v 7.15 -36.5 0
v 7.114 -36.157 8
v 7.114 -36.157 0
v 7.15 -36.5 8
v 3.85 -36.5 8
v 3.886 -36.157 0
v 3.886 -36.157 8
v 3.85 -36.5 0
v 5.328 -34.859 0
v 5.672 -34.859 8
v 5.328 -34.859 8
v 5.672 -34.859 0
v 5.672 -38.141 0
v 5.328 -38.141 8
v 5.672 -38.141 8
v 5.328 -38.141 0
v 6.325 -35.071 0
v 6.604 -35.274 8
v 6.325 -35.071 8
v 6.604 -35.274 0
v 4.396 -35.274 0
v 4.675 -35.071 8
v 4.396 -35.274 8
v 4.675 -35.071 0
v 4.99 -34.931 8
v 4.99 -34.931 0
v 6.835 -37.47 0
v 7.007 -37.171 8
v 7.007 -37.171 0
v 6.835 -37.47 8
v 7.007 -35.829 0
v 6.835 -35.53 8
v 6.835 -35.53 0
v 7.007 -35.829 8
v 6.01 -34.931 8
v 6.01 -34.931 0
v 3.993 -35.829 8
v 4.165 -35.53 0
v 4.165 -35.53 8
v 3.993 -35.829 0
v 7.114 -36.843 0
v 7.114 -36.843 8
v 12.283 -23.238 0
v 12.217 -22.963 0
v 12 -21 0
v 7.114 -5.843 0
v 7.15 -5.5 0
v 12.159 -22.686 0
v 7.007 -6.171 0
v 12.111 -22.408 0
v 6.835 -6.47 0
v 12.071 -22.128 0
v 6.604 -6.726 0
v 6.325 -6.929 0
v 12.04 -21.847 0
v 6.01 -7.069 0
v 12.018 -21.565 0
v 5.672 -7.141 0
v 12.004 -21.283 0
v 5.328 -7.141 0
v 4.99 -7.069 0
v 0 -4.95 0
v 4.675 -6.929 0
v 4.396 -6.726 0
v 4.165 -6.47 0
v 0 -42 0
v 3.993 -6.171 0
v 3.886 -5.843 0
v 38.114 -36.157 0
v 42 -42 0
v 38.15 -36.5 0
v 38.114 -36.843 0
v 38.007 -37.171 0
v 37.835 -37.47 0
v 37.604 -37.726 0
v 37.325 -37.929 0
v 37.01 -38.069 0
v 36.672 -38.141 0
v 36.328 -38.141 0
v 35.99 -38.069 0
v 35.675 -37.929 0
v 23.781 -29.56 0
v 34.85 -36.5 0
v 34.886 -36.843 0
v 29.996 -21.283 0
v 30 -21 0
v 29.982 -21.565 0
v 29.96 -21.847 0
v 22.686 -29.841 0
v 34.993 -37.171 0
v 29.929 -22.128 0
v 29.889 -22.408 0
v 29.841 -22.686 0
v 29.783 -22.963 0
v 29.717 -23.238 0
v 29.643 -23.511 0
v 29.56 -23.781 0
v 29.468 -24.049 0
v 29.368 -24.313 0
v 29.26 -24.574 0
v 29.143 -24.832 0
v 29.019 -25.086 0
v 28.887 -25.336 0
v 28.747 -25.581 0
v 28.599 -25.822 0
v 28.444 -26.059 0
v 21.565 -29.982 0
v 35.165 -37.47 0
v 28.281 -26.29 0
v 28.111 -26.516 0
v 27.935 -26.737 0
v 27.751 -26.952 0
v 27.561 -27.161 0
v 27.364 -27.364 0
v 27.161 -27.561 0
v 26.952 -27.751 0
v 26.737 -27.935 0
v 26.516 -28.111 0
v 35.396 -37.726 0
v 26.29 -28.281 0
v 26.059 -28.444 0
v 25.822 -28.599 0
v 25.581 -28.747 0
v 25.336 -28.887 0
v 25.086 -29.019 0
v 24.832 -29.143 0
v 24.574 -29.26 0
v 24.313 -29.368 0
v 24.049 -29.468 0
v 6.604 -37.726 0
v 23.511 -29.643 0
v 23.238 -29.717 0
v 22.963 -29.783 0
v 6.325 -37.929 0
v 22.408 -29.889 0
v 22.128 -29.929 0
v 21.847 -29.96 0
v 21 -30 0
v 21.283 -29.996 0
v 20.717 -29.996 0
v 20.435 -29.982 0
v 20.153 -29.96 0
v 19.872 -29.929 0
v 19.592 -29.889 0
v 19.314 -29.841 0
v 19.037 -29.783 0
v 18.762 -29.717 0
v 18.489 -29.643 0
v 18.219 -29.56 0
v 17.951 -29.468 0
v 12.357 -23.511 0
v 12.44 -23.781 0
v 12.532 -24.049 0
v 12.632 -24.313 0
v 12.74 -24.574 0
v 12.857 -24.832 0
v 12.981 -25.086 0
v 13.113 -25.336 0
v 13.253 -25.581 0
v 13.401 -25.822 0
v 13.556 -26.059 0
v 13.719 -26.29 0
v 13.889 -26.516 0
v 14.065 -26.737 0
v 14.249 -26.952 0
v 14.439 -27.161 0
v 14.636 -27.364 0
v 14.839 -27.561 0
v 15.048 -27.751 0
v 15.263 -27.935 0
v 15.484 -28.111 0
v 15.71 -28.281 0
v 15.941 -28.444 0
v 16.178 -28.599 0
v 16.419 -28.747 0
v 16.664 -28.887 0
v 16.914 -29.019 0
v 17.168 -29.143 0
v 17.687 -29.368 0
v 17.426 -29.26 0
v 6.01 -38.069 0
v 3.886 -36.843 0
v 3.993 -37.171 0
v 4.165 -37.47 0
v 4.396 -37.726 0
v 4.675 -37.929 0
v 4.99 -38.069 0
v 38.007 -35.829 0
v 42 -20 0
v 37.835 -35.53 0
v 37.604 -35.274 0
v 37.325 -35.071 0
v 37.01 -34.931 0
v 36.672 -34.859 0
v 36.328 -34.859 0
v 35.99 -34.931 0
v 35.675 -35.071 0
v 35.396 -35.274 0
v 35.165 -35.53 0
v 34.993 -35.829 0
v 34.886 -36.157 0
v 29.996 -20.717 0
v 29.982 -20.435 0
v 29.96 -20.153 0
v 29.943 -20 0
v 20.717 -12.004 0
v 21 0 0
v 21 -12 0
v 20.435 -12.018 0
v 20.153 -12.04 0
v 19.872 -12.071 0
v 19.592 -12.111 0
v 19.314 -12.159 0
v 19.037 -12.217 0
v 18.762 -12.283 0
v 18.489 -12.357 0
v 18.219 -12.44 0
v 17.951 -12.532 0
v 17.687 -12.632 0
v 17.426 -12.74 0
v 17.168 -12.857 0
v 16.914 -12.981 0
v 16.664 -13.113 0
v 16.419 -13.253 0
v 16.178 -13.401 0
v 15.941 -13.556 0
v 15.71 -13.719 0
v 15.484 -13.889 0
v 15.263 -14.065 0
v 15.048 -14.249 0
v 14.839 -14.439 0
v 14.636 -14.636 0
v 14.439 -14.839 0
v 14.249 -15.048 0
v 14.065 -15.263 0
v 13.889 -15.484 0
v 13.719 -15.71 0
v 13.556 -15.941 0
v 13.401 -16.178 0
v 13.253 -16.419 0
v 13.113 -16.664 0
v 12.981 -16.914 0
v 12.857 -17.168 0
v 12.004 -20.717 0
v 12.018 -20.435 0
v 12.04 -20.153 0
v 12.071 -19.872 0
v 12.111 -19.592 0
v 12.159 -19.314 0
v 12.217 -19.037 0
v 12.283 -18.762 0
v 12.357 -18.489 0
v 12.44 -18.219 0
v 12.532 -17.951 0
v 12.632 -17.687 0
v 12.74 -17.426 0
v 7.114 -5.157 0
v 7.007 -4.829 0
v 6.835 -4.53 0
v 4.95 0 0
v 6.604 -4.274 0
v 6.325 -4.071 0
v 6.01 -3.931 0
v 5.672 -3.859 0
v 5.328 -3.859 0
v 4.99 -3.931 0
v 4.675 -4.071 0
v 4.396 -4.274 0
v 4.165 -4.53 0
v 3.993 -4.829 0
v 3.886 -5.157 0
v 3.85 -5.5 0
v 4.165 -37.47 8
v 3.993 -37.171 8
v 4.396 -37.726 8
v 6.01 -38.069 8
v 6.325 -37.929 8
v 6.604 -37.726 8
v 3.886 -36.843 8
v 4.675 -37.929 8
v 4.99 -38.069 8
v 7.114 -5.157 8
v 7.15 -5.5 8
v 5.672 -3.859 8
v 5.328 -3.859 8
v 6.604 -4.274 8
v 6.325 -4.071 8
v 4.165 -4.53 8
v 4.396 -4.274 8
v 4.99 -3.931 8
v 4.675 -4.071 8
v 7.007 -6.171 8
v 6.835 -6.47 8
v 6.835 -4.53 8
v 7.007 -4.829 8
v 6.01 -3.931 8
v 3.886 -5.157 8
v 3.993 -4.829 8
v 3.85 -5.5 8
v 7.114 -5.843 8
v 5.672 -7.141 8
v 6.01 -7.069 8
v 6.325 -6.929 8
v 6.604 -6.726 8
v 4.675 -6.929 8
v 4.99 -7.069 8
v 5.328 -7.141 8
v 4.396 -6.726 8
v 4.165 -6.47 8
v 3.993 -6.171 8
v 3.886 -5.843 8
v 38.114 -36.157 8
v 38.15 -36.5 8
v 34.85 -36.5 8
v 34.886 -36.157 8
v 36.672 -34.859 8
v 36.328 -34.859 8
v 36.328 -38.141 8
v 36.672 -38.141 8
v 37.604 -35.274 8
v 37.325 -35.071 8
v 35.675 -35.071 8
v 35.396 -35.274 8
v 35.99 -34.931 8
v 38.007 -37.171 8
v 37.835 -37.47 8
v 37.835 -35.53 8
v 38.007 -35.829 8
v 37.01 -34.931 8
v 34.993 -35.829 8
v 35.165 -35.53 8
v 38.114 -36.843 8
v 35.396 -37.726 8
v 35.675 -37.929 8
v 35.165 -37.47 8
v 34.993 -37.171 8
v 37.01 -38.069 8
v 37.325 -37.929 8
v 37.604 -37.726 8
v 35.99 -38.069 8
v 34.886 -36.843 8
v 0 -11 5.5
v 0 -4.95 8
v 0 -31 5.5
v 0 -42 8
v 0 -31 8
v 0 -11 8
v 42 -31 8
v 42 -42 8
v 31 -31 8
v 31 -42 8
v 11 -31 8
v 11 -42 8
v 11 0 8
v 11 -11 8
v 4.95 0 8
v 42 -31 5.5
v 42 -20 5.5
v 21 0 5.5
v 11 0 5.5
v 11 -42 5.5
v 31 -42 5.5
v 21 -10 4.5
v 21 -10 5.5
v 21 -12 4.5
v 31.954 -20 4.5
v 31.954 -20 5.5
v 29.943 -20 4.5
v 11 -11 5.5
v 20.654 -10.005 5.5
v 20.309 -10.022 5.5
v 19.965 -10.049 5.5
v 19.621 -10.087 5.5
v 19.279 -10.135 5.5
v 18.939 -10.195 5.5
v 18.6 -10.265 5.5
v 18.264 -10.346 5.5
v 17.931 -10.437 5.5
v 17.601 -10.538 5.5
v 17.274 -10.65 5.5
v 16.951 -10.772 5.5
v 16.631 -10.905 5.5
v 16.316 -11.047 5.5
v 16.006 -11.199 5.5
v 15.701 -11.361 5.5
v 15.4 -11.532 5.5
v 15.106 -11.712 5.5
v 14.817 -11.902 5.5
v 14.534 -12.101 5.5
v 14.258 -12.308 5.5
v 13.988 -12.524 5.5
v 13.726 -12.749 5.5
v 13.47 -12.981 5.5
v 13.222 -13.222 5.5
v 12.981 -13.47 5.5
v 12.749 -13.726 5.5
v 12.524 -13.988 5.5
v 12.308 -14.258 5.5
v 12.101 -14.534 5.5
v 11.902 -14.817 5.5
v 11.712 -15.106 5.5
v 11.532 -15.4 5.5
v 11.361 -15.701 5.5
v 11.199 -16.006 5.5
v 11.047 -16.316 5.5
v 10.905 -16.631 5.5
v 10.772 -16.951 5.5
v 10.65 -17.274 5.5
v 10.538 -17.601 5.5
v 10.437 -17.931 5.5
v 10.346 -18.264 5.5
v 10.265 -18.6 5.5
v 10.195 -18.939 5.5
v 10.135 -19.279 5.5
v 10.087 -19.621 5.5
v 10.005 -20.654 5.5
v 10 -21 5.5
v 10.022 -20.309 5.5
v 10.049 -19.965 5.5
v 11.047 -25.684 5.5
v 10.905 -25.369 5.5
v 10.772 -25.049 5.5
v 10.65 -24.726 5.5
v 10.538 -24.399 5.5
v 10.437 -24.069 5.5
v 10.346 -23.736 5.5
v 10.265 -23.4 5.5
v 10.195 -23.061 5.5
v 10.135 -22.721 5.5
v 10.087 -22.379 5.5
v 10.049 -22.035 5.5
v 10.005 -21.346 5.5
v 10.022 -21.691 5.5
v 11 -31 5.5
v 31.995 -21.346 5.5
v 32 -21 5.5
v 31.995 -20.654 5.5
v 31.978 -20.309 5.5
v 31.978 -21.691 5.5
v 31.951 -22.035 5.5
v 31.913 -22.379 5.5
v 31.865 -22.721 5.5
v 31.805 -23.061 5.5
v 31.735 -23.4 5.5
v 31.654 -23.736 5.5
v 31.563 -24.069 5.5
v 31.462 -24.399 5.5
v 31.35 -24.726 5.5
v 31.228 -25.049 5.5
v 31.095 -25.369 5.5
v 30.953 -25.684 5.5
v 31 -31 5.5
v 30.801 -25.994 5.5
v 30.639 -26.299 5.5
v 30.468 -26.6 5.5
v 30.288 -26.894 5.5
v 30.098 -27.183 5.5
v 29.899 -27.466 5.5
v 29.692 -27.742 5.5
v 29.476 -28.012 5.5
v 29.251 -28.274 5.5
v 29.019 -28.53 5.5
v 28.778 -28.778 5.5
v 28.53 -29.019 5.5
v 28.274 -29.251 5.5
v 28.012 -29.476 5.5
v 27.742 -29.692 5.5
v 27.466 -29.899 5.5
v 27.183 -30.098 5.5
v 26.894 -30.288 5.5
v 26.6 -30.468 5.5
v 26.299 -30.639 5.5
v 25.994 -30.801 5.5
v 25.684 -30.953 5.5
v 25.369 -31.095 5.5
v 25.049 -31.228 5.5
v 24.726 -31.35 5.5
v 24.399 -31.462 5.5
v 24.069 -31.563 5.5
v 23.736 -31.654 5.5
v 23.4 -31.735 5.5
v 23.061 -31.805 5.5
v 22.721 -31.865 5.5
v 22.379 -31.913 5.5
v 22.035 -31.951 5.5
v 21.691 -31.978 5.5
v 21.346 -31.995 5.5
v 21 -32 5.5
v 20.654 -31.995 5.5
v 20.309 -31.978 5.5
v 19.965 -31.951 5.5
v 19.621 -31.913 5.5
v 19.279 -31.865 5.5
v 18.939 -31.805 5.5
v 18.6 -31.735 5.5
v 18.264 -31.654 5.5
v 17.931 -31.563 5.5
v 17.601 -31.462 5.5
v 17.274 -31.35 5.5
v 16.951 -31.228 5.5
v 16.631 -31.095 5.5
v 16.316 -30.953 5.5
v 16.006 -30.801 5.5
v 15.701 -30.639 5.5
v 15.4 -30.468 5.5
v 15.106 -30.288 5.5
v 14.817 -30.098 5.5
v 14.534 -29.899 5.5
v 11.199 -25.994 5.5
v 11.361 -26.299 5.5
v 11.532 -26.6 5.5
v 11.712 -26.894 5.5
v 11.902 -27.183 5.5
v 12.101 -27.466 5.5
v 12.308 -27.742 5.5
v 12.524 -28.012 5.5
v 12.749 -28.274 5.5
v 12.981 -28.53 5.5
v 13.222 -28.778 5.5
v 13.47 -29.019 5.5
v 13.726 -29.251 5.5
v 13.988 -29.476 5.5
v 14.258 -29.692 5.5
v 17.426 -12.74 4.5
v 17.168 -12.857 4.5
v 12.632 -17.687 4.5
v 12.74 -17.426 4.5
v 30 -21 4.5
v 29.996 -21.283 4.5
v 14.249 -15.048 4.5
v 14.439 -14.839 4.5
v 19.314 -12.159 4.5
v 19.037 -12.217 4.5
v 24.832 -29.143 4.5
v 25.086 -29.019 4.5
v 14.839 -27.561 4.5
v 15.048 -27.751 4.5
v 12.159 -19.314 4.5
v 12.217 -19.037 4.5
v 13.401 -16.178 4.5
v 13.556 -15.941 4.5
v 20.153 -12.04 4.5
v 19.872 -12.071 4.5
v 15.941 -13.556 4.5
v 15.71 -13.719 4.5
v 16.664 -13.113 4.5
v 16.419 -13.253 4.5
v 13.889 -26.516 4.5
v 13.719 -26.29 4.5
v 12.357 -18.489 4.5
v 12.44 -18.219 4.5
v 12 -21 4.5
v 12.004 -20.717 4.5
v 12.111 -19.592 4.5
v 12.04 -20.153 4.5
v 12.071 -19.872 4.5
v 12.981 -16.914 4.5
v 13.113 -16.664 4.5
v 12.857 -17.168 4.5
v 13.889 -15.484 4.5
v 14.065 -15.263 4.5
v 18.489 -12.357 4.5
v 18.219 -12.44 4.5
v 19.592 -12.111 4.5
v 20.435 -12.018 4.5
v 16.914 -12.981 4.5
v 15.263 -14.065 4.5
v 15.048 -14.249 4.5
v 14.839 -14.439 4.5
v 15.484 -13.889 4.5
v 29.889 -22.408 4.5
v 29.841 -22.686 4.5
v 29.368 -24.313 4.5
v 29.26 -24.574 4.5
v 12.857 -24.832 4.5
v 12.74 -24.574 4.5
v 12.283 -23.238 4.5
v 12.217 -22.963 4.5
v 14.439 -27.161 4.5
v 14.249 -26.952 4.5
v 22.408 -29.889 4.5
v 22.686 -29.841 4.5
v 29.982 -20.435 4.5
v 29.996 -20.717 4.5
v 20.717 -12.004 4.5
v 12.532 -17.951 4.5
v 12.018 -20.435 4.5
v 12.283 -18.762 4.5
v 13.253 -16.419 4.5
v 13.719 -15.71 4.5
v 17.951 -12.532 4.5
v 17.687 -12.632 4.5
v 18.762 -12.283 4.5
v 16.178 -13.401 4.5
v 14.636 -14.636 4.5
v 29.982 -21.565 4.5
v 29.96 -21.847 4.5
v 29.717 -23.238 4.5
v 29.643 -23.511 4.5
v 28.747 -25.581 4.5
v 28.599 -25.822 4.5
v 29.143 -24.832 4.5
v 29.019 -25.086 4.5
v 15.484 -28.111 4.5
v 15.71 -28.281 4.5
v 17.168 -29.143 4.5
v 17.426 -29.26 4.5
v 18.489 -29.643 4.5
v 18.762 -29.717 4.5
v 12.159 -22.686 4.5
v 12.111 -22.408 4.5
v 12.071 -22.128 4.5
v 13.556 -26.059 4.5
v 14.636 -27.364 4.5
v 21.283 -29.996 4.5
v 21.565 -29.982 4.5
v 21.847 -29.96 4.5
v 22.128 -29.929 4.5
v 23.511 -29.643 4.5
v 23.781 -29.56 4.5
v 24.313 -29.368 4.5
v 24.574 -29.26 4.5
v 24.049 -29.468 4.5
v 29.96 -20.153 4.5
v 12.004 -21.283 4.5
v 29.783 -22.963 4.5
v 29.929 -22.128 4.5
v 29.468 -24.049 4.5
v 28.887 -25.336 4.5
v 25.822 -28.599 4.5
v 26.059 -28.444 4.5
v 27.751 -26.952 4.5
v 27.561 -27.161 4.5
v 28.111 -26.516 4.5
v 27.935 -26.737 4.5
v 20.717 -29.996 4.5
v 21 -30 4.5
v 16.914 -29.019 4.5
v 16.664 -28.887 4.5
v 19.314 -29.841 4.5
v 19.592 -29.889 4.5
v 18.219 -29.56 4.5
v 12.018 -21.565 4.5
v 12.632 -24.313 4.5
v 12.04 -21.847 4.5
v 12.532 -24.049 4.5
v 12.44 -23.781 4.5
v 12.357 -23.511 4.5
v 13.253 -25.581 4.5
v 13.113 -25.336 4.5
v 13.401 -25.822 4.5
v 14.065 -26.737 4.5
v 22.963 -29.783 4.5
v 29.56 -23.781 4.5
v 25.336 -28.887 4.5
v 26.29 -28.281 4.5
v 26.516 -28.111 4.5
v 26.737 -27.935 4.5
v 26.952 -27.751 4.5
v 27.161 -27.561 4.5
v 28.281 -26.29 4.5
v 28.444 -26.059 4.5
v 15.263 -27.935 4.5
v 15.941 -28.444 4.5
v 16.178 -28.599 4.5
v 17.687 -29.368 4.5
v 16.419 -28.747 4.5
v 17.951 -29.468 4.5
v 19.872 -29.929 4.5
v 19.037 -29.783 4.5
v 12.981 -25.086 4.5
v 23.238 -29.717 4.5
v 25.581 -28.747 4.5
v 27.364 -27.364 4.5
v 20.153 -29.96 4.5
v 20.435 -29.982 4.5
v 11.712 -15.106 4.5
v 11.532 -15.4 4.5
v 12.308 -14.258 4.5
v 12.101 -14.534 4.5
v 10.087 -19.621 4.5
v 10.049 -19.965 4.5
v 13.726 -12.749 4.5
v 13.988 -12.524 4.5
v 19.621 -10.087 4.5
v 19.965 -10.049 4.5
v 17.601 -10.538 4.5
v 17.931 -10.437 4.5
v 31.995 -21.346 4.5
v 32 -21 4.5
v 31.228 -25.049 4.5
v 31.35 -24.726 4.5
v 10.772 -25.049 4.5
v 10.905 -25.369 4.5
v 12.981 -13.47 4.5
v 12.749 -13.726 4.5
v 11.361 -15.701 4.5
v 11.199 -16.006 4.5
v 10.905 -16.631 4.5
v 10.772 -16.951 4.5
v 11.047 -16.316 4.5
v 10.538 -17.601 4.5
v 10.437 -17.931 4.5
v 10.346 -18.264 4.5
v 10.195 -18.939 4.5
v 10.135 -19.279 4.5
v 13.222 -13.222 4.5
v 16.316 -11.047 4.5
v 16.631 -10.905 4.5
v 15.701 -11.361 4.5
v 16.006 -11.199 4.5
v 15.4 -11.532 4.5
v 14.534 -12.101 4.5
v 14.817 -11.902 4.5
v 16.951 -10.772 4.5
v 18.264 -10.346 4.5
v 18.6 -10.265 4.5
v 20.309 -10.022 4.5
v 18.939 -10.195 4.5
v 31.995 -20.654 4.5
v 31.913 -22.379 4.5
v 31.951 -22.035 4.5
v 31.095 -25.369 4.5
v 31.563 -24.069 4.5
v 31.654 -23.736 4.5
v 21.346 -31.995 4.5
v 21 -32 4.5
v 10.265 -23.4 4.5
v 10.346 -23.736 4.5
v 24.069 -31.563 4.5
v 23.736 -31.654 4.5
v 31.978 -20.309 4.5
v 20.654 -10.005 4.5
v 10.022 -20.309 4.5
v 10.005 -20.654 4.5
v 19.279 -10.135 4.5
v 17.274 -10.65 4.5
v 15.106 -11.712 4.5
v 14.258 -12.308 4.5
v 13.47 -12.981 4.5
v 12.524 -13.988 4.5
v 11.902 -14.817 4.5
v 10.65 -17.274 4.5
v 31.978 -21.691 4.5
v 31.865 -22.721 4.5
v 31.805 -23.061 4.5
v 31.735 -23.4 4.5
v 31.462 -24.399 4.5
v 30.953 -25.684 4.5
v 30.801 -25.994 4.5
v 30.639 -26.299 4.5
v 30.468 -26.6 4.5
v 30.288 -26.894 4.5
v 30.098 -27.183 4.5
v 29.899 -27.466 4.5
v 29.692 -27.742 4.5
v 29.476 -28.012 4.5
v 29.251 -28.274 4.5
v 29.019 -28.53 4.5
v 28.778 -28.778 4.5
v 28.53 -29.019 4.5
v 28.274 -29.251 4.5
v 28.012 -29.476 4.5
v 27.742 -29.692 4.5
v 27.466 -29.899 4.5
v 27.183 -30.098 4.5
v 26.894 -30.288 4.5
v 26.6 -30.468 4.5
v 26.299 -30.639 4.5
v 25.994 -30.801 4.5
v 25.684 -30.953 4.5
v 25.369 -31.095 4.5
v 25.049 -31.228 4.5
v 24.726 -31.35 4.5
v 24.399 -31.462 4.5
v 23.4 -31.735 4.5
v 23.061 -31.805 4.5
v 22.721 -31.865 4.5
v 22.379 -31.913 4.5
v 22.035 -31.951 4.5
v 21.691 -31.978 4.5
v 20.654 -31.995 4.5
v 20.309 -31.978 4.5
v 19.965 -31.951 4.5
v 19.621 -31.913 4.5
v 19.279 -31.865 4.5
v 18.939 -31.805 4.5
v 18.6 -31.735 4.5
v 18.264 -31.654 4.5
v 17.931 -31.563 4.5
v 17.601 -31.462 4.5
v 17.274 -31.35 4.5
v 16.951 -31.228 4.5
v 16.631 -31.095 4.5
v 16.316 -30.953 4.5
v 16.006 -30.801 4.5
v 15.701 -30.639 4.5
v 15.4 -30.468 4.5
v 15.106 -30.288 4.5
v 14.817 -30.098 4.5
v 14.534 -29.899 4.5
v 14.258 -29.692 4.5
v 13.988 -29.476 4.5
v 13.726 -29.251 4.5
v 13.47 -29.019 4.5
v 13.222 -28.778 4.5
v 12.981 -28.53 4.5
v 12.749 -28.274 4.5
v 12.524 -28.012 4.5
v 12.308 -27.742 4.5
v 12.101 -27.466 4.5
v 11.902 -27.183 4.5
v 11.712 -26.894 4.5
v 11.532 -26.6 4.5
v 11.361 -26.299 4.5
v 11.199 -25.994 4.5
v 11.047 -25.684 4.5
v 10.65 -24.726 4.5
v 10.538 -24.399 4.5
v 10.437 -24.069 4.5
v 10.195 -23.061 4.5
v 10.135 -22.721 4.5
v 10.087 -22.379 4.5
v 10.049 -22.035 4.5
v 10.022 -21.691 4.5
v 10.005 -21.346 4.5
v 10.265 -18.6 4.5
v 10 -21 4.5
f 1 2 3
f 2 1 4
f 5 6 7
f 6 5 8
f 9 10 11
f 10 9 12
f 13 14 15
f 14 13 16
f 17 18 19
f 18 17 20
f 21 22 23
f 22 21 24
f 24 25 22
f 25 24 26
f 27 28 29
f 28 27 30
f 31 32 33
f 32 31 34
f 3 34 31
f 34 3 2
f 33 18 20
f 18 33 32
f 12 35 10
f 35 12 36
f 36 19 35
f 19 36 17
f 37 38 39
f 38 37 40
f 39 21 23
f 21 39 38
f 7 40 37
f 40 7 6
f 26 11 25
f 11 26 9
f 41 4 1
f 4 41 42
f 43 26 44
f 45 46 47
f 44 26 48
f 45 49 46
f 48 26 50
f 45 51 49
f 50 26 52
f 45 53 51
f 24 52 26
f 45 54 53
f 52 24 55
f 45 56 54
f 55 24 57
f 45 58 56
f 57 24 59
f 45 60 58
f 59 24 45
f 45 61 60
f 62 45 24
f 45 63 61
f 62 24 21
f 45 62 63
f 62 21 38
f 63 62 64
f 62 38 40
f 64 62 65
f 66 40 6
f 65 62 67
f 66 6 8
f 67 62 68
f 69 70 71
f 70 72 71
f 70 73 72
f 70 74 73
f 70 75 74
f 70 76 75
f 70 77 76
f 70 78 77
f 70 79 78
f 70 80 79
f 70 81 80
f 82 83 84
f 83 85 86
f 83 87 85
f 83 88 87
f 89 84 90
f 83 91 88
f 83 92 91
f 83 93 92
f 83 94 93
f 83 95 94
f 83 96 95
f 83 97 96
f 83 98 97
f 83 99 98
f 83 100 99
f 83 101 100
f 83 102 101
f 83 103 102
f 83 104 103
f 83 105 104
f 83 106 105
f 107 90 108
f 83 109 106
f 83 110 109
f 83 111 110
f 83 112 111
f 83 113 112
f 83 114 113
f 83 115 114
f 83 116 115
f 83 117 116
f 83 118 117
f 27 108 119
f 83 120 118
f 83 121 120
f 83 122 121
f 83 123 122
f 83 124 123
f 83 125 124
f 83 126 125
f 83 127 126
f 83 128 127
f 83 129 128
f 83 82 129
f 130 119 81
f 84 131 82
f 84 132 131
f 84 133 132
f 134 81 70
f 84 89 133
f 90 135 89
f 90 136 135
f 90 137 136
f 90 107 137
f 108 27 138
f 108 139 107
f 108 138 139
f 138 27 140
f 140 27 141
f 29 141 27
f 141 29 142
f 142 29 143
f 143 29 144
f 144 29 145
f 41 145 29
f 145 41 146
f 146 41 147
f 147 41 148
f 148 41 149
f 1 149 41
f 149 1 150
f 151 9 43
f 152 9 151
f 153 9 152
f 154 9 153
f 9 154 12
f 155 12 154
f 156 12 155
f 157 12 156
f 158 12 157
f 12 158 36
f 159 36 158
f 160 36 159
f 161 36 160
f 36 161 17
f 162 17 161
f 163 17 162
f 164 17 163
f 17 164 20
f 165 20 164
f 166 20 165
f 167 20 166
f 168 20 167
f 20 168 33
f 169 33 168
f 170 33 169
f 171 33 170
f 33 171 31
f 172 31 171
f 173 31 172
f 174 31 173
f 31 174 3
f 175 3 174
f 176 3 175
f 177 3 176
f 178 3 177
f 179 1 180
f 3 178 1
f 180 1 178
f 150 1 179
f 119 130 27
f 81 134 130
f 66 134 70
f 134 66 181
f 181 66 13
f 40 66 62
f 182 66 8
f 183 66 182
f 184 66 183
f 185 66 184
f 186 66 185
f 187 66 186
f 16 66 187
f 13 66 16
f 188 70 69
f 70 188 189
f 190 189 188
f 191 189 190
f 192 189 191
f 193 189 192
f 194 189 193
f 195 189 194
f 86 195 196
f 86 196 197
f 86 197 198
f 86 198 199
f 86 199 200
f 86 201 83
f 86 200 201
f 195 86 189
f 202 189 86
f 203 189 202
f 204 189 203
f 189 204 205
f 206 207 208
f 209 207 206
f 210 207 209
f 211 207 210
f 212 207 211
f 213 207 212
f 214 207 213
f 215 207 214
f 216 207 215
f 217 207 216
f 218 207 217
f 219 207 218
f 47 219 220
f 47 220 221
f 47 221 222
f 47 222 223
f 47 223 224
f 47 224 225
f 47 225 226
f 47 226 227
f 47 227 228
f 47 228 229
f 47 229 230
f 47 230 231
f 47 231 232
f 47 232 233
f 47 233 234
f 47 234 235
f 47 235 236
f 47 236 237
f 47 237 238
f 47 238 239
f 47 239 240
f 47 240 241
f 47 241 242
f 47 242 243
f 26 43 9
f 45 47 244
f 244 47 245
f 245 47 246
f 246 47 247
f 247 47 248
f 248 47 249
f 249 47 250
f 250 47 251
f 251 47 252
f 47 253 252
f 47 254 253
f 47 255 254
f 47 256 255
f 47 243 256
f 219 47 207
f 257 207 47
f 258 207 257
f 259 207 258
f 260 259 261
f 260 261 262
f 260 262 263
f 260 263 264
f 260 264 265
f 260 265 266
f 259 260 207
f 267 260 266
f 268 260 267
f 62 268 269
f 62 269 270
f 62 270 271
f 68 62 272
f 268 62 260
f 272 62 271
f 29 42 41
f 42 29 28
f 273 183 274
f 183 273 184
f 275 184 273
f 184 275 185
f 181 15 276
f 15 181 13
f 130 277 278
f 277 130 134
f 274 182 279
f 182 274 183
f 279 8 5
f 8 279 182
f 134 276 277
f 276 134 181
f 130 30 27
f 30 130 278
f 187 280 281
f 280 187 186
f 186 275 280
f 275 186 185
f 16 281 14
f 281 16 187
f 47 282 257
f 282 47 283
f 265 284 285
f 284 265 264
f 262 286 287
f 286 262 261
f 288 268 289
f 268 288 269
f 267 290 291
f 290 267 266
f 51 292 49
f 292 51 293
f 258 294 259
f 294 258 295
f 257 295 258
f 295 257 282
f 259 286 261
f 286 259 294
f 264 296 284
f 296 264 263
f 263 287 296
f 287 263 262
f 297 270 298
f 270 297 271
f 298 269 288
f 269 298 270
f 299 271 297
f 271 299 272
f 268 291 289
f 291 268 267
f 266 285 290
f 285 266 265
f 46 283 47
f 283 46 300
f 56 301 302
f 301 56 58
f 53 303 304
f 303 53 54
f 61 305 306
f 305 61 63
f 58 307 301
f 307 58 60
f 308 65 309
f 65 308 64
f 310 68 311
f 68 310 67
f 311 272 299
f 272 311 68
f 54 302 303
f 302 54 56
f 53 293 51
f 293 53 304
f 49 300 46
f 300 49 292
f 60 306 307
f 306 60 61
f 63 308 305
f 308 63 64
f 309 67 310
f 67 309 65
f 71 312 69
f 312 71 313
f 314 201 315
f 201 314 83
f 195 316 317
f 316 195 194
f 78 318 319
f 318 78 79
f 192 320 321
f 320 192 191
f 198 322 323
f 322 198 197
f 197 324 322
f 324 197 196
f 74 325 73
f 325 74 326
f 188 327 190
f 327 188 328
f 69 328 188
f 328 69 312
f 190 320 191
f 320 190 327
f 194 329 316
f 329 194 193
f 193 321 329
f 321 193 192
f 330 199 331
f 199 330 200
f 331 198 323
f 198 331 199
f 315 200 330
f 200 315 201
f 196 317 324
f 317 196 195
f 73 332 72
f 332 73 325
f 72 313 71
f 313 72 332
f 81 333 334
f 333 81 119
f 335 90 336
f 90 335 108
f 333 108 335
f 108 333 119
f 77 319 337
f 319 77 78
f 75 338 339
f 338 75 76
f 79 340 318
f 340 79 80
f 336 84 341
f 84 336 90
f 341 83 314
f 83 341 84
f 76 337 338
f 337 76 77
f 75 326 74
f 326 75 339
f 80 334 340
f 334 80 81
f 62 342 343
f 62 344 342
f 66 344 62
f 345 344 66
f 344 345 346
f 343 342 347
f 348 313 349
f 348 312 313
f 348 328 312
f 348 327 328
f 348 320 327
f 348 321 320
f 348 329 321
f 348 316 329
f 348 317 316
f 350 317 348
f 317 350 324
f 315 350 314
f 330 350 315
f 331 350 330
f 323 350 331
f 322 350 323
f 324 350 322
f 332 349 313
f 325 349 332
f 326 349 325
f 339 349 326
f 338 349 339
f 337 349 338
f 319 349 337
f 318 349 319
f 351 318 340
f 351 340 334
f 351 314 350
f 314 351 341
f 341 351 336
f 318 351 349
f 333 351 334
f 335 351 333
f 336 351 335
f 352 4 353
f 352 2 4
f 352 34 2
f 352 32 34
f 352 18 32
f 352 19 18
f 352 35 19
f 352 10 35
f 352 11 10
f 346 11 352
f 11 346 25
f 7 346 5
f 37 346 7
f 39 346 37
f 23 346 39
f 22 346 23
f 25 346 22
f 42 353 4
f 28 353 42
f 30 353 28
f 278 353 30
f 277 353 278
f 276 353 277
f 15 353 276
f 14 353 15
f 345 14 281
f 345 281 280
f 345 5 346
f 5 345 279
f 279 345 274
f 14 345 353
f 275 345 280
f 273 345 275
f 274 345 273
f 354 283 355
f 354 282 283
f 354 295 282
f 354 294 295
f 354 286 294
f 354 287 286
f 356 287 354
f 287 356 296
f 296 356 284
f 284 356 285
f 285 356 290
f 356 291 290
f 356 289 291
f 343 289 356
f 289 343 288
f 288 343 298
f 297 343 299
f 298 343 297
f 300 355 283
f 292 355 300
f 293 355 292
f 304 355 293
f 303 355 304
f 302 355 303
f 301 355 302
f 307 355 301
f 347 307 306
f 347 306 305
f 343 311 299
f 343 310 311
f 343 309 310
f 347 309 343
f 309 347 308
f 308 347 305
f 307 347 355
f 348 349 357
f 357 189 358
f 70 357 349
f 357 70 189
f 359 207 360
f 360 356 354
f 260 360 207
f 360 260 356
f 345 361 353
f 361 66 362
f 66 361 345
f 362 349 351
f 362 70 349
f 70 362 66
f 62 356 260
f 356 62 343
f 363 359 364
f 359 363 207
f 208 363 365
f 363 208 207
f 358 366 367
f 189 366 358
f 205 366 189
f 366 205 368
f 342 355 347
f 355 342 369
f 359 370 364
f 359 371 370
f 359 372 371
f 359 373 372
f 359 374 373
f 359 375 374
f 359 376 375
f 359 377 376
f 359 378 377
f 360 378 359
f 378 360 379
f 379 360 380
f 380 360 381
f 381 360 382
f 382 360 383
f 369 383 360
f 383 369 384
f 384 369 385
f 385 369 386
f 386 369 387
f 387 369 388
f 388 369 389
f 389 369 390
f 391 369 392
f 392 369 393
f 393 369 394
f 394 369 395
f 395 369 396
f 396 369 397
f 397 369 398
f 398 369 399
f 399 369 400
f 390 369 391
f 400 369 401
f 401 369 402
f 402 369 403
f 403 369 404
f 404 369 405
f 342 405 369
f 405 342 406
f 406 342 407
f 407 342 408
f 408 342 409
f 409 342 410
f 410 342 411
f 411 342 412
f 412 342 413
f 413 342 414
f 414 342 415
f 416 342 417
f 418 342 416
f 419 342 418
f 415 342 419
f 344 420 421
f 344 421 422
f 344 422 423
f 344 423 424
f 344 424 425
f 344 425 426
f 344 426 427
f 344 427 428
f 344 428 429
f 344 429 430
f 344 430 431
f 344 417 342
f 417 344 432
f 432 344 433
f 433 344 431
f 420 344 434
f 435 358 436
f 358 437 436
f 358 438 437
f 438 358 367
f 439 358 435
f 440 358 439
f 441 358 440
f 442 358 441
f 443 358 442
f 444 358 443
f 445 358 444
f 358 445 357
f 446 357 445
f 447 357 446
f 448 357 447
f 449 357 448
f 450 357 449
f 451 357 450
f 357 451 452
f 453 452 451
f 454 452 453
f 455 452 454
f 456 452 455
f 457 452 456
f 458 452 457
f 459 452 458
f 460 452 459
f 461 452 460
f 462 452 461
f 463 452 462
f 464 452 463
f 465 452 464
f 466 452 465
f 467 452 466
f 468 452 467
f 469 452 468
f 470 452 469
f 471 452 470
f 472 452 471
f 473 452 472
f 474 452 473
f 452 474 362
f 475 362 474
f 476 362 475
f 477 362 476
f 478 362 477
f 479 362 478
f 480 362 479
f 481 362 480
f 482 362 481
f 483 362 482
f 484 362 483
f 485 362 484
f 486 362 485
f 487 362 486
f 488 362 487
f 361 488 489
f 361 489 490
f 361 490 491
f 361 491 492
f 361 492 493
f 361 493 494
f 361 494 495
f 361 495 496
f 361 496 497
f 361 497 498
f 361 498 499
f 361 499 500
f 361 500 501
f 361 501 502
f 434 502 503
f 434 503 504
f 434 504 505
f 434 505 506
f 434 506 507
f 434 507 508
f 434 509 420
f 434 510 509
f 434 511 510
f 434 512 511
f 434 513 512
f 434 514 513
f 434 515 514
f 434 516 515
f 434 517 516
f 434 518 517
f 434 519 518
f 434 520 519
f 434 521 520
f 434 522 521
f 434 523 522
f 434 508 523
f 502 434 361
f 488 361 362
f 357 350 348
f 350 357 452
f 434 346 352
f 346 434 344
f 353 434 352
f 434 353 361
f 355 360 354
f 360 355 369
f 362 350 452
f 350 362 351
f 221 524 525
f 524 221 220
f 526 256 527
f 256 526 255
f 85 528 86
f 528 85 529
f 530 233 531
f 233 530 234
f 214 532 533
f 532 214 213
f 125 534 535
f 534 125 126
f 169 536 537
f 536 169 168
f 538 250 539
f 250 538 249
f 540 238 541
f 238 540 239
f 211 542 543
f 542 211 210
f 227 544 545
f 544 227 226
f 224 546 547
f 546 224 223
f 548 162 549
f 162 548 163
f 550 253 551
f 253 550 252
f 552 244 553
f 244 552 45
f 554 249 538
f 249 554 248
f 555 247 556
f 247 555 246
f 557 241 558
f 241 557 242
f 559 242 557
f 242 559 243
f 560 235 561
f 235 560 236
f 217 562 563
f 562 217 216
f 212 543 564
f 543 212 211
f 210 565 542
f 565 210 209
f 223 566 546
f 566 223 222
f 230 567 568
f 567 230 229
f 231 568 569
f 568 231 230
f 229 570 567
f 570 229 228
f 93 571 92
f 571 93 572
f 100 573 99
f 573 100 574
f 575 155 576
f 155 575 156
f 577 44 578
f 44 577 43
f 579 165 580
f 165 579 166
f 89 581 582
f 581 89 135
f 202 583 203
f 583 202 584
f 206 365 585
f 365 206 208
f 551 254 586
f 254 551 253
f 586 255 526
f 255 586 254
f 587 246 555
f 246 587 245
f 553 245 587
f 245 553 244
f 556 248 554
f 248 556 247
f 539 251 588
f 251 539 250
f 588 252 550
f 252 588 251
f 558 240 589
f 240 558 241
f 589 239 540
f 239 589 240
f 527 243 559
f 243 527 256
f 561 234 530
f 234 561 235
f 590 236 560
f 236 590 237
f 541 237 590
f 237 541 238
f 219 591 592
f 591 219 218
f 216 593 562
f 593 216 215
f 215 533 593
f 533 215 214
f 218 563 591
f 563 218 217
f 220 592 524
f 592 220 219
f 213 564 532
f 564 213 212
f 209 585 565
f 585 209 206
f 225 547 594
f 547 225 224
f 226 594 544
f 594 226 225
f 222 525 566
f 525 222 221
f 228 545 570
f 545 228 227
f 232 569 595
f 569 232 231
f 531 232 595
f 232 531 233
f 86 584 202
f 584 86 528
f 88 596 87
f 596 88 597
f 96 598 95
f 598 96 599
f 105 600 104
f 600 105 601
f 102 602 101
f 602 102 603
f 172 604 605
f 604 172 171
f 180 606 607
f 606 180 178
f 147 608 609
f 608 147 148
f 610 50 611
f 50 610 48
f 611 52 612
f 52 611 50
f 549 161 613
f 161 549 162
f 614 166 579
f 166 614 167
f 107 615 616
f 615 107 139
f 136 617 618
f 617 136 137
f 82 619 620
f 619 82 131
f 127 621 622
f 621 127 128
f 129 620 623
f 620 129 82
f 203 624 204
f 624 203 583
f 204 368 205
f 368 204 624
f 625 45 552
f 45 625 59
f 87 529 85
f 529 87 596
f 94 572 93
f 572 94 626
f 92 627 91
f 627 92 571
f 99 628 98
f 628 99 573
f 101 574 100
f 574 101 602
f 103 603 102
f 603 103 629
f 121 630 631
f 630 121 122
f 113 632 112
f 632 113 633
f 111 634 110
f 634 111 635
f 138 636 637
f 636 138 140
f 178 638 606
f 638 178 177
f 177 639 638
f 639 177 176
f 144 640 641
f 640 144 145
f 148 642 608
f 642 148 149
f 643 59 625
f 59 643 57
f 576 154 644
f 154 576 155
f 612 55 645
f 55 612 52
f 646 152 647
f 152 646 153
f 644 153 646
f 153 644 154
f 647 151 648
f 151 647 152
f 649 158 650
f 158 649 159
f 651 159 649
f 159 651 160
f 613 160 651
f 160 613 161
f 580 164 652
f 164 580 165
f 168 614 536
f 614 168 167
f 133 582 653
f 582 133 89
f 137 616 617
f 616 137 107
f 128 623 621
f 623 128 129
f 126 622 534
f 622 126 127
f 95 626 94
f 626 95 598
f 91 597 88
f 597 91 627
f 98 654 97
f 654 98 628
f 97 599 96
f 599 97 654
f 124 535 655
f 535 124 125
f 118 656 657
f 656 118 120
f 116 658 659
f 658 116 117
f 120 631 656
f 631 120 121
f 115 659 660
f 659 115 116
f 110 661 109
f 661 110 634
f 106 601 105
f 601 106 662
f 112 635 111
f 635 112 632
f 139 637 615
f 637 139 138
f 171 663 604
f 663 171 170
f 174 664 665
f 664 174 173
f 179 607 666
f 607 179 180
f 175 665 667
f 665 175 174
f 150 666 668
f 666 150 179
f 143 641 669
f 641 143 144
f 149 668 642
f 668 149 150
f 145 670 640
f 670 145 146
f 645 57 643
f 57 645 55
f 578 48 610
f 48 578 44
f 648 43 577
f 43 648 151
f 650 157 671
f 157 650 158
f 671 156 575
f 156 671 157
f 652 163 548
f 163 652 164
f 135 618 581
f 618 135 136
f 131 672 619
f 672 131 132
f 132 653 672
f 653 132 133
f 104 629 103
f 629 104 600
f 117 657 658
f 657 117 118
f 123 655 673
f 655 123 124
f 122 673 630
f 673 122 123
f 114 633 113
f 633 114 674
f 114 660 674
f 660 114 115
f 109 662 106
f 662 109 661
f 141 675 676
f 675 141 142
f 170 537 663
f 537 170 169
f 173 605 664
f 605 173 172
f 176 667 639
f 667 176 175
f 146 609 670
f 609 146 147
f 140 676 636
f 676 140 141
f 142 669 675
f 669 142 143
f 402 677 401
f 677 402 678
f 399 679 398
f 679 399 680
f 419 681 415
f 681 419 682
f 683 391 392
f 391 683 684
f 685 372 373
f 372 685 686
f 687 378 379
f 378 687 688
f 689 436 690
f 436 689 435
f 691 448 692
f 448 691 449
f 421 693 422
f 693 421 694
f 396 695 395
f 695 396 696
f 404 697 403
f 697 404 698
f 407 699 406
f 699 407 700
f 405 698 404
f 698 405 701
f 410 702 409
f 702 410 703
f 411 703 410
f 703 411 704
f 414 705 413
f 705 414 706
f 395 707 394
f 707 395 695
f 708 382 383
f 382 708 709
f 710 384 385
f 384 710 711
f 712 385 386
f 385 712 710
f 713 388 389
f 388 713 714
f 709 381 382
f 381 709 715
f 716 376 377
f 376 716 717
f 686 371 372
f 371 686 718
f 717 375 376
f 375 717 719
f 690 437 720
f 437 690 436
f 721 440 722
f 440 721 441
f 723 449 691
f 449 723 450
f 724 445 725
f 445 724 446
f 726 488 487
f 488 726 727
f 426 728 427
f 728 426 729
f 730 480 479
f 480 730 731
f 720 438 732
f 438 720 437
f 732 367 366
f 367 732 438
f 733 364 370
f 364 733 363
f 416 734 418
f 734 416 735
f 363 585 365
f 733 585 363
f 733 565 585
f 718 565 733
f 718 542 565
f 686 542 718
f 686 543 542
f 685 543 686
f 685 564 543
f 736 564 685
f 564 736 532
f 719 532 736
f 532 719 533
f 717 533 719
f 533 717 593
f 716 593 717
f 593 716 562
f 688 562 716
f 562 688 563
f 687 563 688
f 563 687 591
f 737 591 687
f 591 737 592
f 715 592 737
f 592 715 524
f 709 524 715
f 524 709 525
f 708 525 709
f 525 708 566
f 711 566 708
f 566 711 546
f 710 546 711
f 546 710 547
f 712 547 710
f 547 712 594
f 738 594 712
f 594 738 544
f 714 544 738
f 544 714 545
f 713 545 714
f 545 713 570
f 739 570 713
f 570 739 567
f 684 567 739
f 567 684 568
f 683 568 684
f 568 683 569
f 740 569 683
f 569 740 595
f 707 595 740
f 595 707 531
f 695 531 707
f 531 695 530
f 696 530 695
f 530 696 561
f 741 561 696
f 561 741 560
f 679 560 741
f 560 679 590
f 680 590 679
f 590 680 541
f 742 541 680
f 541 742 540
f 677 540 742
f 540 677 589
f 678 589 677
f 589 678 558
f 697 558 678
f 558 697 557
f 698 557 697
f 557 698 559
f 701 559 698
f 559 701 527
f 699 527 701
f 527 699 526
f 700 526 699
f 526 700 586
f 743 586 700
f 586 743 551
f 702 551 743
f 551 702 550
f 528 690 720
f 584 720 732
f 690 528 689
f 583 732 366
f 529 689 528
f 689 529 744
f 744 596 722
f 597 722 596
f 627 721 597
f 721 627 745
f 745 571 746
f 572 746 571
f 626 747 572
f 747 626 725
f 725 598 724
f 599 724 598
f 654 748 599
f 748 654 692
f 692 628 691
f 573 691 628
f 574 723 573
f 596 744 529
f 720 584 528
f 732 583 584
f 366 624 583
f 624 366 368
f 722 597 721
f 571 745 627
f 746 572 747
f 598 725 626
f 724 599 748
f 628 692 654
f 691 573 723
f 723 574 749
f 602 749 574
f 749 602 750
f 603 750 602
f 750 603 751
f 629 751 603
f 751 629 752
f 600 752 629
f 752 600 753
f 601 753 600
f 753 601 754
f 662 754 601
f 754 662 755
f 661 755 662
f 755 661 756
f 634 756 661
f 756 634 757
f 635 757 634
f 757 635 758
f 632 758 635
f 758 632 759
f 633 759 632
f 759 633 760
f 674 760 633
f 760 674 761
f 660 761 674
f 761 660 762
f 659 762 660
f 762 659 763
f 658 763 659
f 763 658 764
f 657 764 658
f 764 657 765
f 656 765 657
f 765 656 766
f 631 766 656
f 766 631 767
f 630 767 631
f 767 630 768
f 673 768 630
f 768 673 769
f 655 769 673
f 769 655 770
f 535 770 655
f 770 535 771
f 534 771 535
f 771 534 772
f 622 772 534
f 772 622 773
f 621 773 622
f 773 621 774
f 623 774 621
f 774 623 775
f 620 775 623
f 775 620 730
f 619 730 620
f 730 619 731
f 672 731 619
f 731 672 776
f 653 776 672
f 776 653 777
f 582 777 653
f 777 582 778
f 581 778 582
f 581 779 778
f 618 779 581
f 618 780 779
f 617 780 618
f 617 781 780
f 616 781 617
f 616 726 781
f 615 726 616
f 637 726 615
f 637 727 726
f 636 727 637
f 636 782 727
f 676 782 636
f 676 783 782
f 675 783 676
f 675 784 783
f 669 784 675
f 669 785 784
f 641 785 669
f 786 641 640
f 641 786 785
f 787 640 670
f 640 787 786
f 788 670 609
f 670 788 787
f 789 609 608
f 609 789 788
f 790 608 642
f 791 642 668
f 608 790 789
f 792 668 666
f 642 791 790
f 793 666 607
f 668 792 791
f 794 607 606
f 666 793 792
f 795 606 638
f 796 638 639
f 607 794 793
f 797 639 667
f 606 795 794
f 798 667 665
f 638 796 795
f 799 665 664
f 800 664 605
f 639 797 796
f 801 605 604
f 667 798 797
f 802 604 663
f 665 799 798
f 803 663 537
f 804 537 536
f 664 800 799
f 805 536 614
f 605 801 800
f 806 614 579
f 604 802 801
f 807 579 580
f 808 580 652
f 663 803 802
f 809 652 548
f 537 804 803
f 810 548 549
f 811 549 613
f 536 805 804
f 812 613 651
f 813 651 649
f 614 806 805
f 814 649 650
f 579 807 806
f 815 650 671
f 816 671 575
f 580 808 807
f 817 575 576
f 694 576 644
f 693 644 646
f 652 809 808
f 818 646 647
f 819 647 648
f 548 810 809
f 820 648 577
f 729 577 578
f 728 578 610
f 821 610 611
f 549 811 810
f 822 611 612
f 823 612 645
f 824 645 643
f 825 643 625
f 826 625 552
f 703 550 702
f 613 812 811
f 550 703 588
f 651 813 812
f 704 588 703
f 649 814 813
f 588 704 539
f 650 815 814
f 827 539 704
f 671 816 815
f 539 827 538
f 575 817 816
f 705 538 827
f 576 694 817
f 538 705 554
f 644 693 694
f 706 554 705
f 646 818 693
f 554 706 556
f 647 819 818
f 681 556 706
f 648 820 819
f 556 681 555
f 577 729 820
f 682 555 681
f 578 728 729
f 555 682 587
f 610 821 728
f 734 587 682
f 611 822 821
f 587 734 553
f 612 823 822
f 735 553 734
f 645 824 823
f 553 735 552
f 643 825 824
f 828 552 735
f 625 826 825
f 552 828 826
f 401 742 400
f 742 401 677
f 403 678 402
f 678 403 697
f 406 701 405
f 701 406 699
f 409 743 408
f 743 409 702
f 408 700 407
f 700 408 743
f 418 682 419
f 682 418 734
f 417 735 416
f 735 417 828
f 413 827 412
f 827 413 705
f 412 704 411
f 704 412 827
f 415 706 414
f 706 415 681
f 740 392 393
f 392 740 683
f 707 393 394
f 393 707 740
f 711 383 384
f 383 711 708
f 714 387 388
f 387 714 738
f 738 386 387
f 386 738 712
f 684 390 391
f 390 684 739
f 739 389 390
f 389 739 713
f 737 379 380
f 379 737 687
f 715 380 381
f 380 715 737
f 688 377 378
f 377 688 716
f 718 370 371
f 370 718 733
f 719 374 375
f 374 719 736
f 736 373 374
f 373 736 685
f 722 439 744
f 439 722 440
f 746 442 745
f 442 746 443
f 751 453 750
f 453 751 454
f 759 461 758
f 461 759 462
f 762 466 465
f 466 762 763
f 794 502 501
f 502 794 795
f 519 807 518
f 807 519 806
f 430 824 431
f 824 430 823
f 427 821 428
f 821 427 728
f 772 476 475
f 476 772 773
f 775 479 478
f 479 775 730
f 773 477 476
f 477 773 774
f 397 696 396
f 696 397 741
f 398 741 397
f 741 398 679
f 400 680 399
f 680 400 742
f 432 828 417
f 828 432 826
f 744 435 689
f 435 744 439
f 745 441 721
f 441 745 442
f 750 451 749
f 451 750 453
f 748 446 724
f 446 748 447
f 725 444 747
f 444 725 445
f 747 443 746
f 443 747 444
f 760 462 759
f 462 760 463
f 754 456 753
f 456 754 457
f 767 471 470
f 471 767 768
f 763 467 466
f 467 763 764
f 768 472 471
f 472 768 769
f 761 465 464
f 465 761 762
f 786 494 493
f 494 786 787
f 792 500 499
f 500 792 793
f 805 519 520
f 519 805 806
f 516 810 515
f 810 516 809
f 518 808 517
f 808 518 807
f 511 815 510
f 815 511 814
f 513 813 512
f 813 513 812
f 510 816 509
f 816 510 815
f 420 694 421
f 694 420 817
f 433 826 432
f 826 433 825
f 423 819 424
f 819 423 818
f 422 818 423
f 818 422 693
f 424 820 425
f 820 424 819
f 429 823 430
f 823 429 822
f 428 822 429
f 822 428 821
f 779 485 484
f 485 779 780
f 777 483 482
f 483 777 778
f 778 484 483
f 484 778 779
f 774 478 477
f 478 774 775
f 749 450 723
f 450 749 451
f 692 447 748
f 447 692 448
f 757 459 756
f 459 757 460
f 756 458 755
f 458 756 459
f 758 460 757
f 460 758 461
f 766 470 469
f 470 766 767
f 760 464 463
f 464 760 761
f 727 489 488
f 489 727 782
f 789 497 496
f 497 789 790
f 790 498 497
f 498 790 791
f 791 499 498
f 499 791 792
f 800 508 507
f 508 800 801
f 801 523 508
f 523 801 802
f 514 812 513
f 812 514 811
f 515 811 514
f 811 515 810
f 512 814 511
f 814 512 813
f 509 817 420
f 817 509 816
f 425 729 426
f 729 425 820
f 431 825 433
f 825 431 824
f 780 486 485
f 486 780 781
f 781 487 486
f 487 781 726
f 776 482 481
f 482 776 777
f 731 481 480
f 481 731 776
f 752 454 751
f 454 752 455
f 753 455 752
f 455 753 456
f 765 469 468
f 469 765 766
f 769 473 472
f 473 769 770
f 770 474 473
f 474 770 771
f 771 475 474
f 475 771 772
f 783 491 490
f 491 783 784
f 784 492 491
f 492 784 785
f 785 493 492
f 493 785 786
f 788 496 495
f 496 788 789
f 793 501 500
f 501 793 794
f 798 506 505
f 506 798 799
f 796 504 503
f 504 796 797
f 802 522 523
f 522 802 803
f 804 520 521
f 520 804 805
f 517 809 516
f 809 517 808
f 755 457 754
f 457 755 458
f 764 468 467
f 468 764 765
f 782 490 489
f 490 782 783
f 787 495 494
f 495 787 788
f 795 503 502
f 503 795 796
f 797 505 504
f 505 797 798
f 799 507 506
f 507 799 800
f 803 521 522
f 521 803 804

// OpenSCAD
height = 8;
cutout_width = 20;
cutout_height = 5.5;

module screws()
{
    // Top right
    translate([-15.5,-15.5,0]) cylinder(r=1.65, h=50, $fn=30);  // Screw hole
    //translate([-15.5,-15.5,-1]) cylinder(r=3.1, h=4.5, $fn=30); // Head cut

    // Bottom right
    translate([-15.5,15.5,0]) cylinder(r=1.65, h=50, $fn=30);   // Screw hole
    //translate([-15.5,15.5,-1]) cylinder(r=3.1, h=4.5, $fn=30);  // Head cut

    // Top left
    translate([15.5,-15.5,0]) cylinder(r=1.65, h=50, $fn=30);   // Screw hole
    //translate([15.5,-15.5,-1]) cylinder(r=3.1, h=4.5, $fn=30);  // Head cut

    // Bottom left
    translate([15.5,15.5,0]) cylinder(r=1.65, h=50, $fn=30);    // Screw hole
    //translate([15.5,15.5,-1]) cylinder(r=3.1, h=4.5, $fn=30);   // Head cut
}

difference()
{
    translate([0,-42,0]) cube([42,42,height]);
    translate([0, 0, height / 2]) rotate([0, 0, 45]) cube([7,7,height], center=true);
    translate([21,-20,0]) cube([51,cutout_width,height]);
    //translate([-30,-42,0]) cube([51,cutout_width,height]);
    
    translate([0,-21-cutout_width/2,cutout_height]) cube([42,cutout_width,height - cutout_height]);
    translate([21-cutout_width/2,-42,cutout_height]) cube([cutout_width,42,height - cutout_height]);
    
    //base round cutout
    translate([21,-21,-2]) cylinder(r=9, h=33, $fn=200);
    translate([21,-21,4.5]) cylinder(r=11, h=7, $fn=200);
    
    translate([21,-21,0]) screws();
}
